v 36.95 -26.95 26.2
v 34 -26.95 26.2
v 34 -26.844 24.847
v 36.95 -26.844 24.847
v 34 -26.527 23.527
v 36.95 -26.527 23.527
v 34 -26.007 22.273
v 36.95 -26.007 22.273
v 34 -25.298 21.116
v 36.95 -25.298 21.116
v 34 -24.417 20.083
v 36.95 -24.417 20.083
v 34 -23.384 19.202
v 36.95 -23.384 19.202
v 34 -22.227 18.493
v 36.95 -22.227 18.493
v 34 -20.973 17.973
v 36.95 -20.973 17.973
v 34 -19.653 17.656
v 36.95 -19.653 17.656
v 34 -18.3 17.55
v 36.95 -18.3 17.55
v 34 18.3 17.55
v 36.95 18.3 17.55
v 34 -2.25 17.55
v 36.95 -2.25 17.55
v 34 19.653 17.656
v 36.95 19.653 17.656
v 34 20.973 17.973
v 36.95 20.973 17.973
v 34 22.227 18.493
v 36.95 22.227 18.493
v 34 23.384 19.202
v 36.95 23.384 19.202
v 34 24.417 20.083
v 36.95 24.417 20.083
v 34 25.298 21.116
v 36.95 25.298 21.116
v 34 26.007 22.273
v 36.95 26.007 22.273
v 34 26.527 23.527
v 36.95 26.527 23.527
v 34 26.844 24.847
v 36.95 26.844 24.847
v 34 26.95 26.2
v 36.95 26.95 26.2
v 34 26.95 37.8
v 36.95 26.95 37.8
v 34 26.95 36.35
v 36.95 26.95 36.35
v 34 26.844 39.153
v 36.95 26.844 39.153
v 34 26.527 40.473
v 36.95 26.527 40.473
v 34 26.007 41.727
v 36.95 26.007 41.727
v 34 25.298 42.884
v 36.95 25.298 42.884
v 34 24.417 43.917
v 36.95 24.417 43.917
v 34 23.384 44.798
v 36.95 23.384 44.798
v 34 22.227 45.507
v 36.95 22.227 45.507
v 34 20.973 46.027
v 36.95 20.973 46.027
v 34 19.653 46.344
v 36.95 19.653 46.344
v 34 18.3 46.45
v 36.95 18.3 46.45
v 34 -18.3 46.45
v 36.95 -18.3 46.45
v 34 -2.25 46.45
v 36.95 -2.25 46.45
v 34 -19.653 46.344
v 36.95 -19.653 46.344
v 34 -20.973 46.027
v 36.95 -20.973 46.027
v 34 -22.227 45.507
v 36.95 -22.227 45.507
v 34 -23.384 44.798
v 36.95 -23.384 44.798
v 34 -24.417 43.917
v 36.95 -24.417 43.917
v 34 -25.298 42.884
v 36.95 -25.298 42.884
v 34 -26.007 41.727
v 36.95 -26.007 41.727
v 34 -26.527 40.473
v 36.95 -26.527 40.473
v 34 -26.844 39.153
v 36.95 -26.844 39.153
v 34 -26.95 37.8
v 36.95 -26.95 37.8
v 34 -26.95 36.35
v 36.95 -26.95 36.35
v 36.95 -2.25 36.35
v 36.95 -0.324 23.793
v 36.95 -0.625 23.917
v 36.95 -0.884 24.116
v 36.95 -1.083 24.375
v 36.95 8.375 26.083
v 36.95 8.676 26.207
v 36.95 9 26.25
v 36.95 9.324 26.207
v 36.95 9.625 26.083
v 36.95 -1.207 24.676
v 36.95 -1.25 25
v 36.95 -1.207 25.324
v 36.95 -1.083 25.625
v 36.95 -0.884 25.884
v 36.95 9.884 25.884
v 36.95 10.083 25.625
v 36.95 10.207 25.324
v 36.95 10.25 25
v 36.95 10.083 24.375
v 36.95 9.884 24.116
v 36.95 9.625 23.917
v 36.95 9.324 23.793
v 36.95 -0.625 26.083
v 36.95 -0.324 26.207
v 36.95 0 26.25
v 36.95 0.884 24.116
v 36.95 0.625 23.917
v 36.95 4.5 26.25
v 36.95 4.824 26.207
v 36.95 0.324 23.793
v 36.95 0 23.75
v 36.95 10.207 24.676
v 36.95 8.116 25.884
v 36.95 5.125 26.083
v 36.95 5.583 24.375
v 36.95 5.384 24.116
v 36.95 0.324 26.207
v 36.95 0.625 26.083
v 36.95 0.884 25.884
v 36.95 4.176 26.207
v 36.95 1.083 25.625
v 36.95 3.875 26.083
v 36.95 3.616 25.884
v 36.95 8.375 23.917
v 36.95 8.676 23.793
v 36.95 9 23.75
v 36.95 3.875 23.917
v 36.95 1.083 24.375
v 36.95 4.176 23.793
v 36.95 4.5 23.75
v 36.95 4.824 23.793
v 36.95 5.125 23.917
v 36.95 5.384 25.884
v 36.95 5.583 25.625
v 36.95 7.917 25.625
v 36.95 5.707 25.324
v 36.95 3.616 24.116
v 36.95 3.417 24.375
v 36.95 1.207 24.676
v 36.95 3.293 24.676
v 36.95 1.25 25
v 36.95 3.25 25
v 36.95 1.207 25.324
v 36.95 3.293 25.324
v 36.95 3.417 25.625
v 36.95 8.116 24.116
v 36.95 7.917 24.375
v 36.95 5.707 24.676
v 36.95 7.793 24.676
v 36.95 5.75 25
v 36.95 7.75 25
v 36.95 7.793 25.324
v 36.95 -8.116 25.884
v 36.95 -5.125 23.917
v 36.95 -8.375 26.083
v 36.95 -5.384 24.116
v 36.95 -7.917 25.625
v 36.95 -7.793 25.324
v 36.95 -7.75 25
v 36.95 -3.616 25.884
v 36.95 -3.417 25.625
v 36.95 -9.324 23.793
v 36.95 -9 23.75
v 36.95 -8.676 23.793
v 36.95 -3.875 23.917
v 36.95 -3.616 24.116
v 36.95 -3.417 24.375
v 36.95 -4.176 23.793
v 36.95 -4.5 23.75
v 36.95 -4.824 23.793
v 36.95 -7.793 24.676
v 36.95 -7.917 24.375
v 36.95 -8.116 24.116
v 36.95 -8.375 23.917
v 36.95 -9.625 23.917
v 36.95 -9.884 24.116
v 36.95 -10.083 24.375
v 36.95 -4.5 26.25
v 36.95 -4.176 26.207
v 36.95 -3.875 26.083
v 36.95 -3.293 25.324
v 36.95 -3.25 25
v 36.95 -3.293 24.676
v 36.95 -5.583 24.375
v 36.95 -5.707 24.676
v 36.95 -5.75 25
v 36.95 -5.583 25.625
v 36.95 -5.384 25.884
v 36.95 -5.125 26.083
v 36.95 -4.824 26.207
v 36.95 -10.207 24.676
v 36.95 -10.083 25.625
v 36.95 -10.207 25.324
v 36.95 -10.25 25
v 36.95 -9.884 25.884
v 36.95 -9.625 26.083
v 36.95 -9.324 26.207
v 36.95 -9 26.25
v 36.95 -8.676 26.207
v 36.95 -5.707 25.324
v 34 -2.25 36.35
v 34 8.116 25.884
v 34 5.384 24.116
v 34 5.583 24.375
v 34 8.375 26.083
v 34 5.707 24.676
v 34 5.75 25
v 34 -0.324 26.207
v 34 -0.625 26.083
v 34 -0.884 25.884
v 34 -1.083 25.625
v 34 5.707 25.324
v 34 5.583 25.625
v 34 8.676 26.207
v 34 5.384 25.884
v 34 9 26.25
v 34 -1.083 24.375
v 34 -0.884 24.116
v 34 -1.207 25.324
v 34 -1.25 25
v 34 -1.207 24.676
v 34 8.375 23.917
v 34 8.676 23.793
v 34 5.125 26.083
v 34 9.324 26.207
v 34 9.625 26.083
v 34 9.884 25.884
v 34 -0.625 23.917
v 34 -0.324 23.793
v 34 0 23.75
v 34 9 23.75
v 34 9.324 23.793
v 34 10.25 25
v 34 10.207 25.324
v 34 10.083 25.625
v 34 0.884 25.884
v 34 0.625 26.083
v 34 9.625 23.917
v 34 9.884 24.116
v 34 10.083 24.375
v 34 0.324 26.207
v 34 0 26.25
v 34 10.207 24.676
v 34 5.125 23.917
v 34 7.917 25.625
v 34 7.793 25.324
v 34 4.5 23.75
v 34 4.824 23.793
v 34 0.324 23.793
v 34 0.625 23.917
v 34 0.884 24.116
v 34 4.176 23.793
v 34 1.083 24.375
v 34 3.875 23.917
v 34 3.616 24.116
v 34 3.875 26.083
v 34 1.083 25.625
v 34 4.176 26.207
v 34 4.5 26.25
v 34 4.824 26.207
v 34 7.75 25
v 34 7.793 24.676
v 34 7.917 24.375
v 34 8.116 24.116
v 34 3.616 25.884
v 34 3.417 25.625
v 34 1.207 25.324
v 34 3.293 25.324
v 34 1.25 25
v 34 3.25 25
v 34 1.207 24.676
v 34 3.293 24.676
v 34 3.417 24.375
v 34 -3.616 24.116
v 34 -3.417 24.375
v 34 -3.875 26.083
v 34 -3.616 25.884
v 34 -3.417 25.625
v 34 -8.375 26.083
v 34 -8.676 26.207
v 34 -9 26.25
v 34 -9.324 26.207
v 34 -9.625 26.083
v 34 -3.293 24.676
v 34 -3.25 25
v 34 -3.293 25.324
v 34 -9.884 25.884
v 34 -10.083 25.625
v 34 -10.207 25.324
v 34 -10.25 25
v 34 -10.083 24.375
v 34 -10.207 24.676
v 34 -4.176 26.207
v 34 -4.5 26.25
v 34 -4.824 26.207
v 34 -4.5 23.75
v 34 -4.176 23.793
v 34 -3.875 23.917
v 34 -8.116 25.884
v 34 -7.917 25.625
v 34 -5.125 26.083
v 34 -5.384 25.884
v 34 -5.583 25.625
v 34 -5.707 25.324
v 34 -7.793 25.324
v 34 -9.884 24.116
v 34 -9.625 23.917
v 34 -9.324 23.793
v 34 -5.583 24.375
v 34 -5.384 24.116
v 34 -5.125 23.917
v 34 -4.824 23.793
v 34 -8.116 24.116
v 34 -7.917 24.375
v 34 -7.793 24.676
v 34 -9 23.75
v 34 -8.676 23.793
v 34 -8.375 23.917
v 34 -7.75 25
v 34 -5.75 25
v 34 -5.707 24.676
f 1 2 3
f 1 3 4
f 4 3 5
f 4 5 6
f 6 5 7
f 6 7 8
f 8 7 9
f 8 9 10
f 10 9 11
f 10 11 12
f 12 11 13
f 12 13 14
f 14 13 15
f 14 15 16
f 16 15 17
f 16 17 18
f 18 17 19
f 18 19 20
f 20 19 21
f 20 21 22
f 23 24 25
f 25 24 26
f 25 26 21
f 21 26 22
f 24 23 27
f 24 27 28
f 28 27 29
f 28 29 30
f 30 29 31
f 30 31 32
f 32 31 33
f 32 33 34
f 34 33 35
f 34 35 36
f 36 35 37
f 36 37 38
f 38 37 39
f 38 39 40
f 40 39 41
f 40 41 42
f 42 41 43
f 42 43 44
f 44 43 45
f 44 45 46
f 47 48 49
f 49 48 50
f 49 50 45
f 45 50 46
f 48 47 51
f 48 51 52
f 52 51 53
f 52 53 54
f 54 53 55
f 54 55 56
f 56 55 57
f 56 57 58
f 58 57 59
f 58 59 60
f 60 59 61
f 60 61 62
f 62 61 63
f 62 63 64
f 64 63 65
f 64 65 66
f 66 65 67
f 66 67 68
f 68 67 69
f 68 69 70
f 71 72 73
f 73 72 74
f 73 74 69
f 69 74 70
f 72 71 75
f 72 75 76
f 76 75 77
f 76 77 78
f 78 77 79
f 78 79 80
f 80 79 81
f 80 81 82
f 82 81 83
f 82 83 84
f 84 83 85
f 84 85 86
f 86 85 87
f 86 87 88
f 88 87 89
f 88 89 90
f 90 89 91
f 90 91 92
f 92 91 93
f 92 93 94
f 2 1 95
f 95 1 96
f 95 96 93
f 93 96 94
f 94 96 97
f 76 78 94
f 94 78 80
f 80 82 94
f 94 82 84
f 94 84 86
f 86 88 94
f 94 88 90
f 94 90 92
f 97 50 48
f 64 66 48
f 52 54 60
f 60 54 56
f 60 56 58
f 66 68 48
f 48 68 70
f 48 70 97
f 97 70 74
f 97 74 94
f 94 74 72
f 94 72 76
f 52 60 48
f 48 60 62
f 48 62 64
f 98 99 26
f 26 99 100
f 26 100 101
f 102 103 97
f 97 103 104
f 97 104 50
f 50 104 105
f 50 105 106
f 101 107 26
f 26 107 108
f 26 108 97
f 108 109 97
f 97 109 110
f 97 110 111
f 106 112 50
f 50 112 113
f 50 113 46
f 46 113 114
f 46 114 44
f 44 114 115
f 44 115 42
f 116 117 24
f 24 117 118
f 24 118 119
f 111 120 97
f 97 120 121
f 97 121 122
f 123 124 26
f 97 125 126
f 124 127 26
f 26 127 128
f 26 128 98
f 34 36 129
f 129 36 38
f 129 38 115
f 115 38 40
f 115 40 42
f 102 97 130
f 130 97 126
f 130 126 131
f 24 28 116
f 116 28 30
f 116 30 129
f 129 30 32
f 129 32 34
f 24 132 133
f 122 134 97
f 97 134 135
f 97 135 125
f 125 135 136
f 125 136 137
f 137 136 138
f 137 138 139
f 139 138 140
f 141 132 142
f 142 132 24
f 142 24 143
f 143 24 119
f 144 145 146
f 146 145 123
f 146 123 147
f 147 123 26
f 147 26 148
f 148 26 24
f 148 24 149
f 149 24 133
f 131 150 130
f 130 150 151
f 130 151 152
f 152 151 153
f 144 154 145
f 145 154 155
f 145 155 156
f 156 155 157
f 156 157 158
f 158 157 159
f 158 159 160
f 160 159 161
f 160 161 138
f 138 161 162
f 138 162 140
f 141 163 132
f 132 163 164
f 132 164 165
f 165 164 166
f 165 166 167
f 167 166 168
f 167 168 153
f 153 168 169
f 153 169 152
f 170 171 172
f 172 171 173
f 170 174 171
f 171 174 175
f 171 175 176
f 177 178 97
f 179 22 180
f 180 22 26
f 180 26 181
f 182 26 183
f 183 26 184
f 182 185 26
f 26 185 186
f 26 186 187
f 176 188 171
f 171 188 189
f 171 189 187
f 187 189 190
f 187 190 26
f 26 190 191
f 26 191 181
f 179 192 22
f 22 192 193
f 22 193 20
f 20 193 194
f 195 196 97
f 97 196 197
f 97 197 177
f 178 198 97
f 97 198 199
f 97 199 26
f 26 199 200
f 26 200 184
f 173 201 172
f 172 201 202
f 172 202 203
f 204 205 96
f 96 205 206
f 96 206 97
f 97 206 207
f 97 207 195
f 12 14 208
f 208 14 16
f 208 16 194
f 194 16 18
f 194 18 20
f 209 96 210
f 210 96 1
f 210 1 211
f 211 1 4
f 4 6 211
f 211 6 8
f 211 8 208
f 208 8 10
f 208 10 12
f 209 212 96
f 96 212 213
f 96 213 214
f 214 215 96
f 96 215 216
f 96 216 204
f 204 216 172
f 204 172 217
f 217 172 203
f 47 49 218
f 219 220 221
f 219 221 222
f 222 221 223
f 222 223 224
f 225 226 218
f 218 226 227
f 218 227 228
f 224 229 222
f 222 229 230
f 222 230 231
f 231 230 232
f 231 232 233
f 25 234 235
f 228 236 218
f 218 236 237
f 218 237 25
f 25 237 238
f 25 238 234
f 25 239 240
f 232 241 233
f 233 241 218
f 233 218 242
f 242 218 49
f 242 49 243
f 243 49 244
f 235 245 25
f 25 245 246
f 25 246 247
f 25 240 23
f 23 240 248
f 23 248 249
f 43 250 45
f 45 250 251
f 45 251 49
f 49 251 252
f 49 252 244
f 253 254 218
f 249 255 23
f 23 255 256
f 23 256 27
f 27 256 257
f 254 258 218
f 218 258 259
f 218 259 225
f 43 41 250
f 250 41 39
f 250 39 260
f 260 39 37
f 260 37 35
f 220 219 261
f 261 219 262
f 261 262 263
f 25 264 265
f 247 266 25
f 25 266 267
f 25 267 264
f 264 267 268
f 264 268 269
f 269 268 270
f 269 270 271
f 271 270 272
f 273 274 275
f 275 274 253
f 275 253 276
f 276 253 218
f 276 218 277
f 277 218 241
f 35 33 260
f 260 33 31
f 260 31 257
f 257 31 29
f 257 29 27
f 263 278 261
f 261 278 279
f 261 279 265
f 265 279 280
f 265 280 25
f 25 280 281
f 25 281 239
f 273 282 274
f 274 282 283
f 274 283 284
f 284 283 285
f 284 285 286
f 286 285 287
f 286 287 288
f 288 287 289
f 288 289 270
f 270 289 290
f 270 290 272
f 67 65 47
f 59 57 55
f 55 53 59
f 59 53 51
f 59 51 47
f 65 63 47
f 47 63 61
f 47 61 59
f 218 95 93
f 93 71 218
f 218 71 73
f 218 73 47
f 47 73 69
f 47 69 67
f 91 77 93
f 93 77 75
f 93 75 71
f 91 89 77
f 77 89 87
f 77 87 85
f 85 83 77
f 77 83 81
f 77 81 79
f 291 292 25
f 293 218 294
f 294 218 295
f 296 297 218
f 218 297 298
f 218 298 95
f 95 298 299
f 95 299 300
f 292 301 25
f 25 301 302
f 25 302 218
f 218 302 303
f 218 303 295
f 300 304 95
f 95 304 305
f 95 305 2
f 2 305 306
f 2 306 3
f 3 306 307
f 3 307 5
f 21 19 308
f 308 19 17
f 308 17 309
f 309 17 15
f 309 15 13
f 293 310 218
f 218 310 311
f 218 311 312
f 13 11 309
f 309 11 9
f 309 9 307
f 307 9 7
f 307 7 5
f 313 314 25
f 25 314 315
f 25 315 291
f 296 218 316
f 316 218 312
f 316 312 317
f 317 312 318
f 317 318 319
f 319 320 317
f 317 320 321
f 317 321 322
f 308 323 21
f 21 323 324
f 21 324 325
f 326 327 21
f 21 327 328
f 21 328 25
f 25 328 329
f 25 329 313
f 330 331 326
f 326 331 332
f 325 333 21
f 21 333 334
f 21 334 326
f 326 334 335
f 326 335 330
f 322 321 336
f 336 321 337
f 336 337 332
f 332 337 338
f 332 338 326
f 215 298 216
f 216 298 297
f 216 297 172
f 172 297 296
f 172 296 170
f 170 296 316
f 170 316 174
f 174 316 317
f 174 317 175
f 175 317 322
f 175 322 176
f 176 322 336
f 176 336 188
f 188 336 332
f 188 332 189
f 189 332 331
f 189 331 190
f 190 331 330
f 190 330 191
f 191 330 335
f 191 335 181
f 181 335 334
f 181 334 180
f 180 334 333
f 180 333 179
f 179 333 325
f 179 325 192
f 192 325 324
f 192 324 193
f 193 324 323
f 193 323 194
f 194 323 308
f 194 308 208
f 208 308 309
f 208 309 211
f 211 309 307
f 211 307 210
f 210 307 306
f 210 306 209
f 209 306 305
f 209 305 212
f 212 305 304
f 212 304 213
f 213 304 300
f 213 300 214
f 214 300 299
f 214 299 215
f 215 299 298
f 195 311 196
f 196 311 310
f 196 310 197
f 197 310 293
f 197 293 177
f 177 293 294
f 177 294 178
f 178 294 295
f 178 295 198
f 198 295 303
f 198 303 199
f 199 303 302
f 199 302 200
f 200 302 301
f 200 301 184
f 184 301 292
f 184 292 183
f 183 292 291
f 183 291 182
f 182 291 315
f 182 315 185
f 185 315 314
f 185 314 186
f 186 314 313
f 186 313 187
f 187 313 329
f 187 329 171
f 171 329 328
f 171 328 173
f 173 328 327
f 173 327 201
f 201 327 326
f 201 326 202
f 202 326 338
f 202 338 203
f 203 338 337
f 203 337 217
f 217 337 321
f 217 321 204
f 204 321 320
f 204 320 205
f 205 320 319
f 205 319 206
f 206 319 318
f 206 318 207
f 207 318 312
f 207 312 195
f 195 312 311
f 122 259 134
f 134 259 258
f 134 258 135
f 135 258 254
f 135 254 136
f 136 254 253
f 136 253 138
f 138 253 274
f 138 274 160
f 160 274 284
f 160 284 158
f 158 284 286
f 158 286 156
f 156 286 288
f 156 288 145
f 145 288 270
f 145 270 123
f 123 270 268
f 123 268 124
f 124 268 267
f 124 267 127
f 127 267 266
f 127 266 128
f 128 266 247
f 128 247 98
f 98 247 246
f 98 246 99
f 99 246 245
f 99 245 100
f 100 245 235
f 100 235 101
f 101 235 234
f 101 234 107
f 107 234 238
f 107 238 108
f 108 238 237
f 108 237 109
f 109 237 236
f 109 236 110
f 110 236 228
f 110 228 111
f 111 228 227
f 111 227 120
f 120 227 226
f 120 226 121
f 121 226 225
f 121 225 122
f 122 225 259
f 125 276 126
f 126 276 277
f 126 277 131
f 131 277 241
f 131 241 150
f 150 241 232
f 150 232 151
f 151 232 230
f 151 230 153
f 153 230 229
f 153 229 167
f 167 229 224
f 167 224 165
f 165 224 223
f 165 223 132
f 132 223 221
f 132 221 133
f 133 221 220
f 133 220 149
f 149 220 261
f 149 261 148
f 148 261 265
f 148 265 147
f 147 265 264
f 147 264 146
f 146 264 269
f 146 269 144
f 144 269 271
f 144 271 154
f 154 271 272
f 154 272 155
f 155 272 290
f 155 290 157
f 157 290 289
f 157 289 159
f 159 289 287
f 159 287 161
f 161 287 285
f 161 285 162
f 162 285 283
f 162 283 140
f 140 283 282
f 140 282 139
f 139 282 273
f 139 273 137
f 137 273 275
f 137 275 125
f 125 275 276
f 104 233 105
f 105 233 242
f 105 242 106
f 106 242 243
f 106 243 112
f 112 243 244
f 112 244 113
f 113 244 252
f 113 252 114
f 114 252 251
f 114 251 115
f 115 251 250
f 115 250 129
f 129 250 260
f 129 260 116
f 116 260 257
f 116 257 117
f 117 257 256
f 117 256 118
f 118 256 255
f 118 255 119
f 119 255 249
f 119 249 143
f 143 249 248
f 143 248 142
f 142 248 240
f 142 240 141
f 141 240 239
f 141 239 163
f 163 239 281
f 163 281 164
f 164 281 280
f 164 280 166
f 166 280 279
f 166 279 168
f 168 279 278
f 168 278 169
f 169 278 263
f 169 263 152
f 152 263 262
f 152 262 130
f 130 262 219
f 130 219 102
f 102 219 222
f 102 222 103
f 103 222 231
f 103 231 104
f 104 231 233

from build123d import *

# Parameters (mm, degrees)
BOSS_1_DEPTH = 2.95
S_HOLE2_R    = 1.25
HOLE_2_DEPTH = 3.2
S_HOLE3_R    = 1.25
HOLE_3_DEPTH = 3.2
S_HOLE4_R    = 1.25
HOLE_4_DEPTH = 3.2
S_HOLE5_R    = 1.25
HOLE_5_DEPTH = 3.2
S_HOLE6_R    = 1.25
HOLE_6_DEPTH = 3.2


with BuildPart() as part:
    # S_prism1 → Boss_1 (new body)
    with BuildSketch(Plane(origin=(34, 0, 0), x_dir=(0, 0, -1), z_dir=(1, 0, 0))):
        with BuildLine():
            Line((-17.55, -18.3), (-17.55, 18.3))
            ThreePointArc((-17.55, 18.3), (-20.0835, 24.4165), (-26.2, 26.95))
            Line((-26.2, 26.95), (-37.8, 26.95))
            ThreePointArc((-37.8, 26.95), (-43.9165, 24.4165), (-46.45, 18.3))
            Line((-46.45, 18.3), (-46.45, -18.3))
            ThreePointArc((-46.45, -18.3), (-43.9165, -24.4165), (-37.8, -26.95))
            Line((-37.8, -26.95), (-26.2, -26.95))
            ThreePointArc((-26.2, -26.95), (-20.0835, -24.4165), (-17.55, -18.3))
        make_face()
    extrude(amount=BOSS_1_DEPTH)

    # S_hole2 → Hole_2 (cut)
    with BuildSketch(Plane(origin=(33.9, 0, 0), x_dir=(0, 0, -1), z_dir=(1, 0, 0))):
        with Locations((-25, -9)):
            Circle(S_HOLE2_R)
    extrude(amount=HOLE_2_DEPTH, mode=Mode.SUBTRACT)

    # S_hole3 → Hole_3 (cut)
    with BuildSketch(Plane(origin=(33.9, 0, 0), x_dir=(0, 0, -1), z_dir=(1, 0, 0))):
        with Locations((-25, -4.5)):
            Circle(S_HOLE3_R)
    extrude(amount=HOLE_3_DEPTH, mode=Mode.SUBTRACT)

    # S_hole4 → Hole_4 (cut)
    with BuildSketch(Plane(origin=(33.9, 0, 0), x_dir=(0, 0, -1), z_dir=(1, 0, 0))):
        with Locations((-25, 0)):
            Circle(S_HOLE4_R)
    extrude(amount=HOLE_4_DEPTH, mode=Mode.SUBTRACT)

    # S_hole5 → Hole_5 (cut)
    with BuildSketch(Plane(origin=(33.9, 0, 0), x_dir=(0, 0, -1), z_dir=(1, 0, 0))):
        with Locations((-25, 4.5)):
            Circle(S_HOLE5_R)
    extrude(amount=HOLE_5_DEPTH, mode=Mode.SUBTRACT)

    # S_hole6 → Hole_6 (cut)
    with BuildSketch(Plane(origin=(33.9, 0, 0), x_dir=(0, 0, -1), z_dir=(1, 0, 0))):
        with Locations((-25, 9)):
            Circle(S_HOLE6_R)
    extrude(amount=HOLE_6_DEPTH, mode=Mode.SUBTRACT)


solid = part.part
